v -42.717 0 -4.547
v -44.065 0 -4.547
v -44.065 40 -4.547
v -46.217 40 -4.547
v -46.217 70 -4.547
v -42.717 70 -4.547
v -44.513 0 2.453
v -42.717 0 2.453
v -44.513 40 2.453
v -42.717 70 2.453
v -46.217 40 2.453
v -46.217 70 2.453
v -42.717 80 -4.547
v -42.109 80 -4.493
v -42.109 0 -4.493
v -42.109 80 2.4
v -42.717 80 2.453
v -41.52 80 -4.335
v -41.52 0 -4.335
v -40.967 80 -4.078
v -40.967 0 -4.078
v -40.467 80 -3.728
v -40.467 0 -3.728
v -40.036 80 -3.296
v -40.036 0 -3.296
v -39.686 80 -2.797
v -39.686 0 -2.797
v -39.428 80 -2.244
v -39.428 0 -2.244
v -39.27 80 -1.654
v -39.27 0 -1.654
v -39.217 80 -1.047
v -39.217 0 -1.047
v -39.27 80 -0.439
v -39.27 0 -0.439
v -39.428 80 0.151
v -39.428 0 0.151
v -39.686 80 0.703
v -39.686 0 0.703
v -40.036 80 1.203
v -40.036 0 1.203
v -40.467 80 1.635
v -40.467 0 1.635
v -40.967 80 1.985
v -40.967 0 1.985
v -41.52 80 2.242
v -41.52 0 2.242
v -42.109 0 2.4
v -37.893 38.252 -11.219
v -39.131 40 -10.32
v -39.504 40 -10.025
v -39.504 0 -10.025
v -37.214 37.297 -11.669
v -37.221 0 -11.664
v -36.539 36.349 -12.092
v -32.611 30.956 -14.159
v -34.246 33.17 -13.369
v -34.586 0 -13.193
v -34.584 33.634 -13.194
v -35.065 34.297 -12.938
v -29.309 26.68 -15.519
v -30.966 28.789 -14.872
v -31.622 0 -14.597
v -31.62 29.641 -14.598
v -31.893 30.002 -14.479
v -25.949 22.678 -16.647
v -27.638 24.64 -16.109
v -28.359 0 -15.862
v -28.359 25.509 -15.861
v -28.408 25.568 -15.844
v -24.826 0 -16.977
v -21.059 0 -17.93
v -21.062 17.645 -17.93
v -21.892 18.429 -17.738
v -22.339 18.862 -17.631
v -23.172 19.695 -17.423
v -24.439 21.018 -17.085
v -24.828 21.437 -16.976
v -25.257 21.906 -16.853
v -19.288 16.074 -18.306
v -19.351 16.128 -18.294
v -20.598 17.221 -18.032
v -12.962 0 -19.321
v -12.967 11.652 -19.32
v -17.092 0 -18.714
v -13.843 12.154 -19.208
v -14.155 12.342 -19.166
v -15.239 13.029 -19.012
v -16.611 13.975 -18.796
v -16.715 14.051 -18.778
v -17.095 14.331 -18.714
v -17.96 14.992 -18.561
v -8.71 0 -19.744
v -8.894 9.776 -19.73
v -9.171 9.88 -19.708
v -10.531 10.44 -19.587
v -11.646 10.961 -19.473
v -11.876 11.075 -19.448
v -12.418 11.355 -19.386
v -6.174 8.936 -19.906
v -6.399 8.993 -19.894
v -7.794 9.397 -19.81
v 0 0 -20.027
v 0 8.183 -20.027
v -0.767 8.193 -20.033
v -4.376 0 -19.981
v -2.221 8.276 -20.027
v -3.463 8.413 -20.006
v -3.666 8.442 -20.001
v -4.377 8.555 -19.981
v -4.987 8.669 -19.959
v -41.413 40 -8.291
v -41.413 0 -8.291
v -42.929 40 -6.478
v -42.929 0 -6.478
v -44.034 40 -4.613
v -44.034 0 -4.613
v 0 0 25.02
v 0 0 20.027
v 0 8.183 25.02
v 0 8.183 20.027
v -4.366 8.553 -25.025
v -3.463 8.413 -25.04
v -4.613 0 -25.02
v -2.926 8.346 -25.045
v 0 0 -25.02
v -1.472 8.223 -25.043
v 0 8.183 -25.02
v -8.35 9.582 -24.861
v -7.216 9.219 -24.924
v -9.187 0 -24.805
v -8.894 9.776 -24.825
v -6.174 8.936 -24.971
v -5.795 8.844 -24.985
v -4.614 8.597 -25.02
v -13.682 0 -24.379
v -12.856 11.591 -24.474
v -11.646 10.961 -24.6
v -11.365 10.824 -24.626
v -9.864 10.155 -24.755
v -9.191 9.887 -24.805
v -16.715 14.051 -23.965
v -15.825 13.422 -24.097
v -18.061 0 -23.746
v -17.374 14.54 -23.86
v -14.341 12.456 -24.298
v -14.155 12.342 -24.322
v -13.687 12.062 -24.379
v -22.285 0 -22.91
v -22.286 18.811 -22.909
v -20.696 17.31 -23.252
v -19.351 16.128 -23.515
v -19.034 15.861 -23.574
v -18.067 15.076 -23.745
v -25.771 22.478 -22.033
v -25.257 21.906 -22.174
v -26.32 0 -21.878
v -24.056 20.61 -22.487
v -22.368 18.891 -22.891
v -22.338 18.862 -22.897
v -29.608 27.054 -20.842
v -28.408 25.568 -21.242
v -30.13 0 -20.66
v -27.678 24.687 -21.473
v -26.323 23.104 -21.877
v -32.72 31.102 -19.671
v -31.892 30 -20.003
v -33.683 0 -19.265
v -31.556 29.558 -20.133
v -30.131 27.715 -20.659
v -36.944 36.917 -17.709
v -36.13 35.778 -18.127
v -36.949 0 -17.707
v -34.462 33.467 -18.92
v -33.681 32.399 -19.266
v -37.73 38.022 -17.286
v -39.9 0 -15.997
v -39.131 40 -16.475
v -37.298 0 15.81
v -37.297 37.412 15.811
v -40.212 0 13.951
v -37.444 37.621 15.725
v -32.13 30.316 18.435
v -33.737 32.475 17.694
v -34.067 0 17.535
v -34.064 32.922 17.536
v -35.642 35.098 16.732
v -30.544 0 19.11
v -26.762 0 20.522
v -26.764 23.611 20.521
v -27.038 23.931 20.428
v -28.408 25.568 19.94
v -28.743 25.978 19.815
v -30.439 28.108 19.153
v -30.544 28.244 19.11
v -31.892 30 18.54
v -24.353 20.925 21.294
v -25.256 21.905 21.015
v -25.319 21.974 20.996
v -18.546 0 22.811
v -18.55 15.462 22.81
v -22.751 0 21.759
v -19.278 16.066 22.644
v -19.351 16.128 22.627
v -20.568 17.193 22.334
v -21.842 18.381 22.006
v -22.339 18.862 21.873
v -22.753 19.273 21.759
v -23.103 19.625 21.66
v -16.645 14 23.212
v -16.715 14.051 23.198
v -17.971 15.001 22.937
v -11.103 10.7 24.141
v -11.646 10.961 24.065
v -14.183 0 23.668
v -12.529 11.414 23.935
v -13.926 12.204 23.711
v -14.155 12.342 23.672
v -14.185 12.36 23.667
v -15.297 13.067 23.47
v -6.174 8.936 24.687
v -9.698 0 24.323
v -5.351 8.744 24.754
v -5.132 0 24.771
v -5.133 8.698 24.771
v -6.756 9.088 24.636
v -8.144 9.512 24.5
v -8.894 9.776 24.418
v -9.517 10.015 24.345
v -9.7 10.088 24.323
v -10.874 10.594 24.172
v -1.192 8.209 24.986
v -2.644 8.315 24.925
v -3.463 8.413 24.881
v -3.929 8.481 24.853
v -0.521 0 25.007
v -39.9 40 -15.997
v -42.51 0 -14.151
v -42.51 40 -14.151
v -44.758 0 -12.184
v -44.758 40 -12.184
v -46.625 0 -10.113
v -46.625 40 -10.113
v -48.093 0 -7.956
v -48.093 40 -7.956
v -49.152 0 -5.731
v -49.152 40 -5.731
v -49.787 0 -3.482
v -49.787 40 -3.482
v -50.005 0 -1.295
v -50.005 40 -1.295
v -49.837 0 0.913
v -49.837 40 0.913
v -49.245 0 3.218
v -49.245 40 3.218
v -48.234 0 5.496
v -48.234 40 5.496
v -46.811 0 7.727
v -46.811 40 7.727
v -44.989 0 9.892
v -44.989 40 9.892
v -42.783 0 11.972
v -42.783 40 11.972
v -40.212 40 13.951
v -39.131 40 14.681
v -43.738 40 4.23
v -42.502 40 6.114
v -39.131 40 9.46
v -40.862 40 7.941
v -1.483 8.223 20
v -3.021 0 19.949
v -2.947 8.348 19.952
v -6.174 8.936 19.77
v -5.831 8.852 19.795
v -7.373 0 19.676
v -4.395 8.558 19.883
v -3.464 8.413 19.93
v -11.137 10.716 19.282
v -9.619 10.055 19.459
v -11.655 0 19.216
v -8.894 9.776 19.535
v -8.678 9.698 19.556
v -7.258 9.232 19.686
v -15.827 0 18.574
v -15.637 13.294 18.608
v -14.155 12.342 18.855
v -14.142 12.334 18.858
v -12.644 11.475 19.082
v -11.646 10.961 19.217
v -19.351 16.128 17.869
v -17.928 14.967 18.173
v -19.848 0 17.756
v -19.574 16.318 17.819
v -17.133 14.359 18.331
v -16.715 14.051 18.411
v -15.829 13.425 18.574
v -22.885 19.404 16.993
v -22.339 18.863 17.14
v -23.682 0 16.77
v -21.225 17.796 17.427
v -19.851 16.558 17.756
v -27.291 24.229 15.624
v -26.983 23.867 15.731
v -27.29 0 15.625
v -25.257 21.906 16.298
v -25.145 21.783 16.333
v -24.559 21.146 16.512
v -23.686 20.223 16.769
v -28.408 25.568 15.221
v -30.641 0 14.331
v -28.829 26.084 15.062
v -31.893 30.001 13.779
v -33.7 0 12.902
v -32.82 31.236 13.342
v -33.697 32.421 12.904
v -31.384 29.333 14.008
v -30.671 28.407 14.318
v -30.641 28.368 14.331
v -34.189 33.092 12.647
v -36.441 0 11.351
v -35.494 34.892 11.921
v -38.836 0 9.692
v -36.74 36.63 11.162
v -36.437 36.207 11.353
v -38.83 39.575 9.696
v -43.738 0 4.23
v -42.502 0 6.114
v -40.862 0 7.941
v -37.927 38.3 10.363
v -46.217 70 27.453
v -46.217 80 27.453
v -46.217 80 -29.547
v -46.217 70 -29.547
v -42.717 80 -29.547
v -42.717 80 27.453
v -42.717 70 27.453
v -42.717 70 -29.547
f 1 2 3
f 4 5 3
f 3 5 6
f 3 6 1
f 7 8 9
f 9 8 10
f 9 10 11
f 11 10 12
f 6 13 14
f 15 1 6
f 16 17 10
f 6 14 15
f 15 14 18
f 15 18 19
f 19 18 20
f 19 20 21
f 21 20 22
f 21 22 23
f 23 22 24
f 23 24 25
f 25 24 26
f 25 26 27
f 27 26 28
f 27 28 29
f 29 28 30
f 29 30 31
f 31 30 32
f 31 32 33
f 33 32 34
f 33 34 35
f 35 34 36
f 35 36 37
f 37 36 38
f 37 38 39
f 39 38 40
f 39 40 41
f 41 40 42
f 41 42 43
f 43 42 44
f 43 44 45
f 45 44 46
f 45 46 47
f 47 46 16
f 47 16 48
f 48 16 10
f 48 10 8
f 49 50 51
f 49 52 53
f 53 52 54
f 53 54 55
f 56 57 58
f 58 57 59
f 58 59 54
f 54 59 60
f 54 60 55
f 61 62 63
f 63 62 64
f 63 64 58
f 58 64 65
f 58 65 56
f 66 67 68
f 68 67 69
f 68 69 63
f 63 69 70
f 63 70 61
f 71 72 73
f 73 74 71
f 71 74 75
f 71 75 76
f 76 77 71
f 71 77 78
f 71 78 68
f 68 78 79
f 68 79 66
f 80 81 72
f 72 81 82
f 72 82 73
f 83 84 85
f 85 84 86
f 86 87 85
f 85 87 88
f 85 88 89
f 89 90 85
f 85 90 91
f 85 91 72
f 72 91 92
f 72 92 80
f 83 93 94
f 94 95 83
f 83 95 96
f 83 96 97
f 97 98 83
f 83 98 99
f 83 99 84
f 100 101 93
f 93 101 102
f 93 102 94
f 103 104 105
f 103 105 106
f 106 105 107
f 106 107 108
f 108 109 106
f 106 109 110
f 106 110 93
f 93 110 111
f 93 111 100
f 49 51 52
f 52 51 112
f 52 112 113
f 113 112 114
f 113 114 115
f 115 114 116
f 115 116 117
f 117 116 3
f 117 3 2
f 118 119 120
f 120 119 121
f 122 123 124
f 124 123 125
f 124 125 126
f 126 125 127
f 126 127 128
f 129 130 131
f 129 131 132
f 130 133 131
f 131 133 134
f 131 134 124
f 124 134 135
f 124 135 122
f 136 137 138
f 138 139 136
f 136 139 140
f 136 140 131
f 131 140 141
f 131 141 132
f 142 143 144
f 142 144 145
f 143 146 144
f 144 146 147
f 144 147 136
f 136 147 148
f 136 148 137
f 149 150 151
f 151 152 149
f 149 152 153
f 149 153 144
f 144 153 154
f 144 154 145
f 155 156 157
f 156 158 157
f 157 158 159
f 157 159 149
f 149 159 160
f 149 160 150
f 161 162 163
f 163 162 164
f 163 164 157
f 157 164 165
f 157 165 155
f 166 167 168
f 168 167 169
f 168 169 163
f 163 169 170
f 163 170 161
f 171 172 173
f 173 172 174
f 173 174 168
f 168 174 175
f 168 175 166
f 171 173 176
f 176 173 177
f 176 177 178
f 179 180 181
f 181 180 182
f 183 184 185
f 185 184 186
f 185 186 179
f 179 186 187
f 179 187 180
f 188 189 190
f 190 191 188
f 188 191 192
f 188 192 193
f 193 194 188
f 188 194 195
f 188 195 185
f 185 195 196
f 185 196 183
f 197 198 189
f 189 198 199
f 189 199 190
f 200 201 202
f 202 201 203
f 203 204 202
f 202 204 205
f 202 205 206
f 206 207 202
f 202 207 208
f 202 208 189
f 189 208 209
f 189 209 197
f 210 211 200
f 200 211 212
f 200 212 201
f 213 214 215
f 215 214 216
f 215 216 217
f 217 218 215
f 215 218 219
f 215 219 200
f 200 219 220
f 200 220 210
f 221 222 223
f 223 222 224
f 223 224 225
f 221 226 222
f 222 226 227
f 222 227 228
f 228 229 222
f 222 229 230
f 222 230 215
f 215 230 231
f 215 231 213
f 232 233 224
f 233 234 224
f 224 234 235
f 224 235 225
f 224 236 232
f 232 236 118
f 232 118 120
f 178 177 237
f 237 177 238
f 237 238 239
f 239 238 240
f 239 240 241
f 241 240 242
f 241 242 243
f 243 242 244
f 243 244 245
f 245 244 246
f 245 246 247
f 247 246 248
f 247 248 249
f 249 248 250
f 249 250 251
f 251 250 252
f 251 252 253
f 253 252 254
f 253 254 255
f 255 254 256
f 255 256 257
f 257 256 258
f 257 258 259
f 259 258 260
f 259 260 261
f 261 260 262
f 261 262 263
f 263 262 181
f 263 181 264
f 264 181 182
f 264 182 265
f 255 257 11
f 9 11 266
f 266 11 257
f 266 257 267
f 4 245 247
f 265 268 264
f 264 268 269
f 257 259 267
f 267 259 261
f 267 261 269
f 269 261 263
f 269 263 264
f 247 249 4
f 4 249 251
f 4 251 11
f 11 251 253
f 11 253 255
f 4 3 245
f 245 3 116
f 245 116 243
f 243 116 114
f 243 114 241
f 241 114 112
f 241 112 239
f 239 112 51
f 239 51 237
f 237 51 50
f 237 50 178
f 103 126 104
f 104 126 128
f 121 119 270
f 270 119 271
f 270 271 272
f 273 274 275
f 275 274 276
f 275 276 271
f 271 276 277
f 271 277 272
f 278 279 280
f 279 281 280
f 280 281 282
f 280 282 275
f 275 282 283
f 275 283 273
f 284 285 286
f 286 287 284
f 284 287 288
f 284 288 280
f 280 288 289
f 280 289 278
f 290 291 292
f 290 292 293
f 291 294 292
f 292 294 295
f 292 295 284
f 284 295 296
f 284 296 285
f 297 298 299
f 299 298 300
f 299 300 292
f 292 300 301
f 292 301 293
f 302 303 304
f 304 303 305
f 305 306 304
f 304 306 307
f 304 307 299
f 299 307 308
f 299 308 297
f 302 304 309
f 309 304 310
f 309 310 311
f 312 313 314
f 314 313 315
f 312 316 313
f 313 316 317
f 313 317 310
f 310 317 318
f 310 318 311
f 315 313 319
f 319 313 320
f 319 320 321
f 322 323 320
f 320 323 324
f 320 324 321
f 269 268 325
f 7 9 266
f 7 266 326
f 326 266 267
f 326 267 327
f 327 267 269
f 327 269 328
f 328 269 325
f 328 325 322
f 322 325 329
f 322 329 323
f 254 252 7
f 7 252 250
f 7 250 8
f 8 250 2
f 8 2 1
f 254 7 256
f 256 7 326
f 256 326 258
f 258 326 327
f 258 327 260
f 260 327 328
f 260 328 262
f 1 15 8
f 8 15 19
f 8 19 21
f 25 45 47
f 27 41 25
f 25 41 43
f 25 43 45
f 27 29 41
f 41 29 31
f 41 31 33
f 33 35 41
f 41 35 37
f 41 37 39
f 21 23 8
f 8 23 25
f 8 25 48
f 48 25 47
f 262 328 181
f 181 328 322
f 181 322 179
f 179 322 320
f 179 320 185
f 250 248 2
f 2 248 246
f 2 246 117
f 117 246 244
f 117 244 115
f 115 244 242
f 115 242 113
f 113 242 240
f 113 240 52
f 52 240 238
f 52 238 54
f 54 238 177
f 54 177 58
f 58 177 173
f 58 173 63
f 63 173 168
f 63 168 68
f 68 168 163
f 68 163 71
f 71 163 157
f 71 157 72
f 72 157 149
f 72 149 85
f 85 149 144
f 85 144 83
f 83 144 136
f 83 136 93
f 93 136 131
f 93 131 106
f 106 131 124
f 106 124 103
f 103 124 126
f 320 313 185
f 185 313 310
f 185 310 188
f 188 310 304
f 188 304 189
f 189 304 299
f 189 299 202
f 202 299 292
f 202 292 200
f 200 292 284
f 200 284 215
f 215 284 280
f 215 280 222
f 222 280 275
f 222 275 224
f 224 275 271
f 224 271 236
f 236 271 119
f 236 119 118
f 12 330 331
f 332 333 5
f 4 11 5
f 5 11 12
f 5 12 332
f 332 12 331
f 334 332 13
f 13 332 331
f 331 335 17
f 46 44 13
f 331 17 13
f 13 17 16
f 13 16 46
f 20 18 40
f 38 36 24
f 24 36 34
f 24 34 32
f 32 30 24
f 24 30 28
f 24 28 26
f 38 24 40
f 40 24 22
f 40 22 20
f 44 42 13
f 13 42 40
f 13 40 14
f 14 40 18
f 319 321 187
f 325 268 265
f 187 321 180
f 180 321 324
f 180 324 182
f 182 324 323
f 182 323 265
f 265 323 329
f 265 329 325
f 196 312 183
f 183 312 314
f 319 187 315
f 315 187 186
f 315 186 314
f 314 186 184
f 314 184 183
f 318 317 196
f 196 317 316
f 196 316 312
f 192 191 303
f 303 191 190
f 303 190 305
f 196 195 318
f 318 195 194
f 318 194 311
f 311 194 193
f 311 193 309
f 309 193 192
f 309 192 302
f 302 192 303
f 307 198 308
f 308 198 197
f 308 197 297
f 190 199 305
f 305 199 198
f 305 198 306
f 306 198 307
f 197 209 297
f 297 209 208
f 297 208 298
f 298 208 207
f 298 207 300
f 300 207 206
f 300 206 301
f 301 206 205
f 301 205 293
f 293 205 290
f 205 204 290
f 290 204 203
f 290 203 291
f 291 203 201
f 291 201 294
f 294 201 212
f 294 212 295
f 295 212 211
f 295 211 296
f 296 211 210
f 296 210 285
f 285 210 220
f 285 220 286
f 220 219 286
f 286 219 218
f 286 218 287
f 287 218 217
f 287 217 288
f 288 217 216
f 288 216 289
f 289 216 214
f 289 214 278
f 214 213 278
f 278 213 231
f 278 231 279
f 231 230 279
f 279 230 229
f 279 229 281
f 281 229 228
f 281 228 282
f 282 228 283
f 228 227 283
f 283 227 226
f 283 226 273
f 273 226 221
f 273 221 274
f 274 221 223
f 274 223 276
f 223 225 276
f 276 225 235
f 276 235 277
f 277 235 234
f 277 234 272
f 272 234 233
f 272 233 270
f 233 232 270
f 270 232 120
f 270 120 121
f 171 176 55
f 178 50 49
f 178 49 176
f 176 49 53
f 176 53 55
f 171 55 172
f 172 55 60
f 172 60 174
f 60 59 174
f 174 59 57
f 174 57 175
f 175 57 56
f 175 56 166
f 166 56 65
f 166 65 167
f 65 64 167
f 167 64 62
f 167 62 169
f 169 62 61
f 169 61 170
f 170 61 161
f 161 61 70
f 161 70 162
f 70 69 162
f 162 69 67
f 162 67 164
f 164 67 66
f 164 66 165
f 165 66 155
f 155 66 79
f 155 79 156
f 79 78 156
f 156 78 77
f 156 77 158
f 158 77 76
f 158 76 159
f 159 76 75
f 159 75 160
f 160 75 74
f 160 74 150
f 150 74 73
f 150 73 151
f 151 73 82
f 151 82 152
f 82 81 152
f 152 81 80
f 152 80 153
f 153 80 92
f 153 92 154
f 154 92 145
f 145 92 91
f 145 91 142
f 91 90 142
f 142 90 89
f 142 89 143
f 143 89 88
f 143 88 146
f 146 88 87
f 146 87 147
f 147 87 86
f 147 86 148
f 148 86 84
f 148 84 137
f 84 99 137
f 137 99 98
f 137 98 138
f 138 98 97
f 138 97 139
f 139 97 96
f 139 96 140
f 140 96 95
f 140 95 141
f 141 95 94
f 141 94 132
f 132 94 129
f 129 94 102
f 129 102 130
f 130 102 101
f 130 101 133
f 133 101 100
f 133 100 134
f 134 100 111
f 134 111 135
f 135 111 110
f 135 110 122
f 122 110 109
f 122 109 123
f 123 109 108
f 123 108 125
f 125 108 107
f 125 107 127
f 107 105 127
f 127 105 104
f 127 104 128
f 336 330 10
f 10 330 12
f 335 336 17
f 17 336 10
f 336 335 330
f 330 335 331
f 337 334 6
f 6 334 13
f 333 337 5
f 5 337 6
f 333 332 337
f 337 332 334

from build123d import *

# Parameters (mm, degrees)
SKETCH1_RX          = 50.023380752
SKETCH1_RY          = 25.011690376
BOSS_EXTRUDE1_DEPTH = 40
SKETCH2_W           = 53.048194423
SKETCH2_H           = 52.128277272
CUT_EXTRUDE1_DEPTH  = 40
SKETCH3_RX          = 45.004218106
SKETCH3_RY          = 20.025989305
CUT_EXTRUDE3_DEPTH  = 40
HANDLE_DEPTH        = 40
HANDLE_DEPTH_BACK   = 40
SKETCH4_W           = 7
SKETCH4_H           = 7
CUT_EXTRUDE4_START  = -27.500221438
CUT_EXTRUDE4_DEPTH  = 50.067195632
FILLET1_RADIUS      = 3.5
FILLET1_LENGTH      = 80
SKETCH6_W           = 3.5
SKETCH6_H           = 10
BOSS_EXTRUDE2_DEPTH = 25
SKETCH9_W           = 3.5
SKETCH9_H           = 10
BOSS_EXTRUDE3_DEPTH = 25


# Read off the part's stored shape, not the designer's step: Cut-Extrude4
with BuildPart() as part:
    # Sketch1 → Boss-Extrude1 (new body)
    with BuildSketch(Plane(origin=(0, 0, 0), x_dir=(1, 0, 0), z_dir=(0, 1, 0))):
        with Locations(Location((0, 0), (0, 0, -1.751851392))):
            Ellipse(SKETCH1_RX, SKETCH1_RY)
    extrude(amount=BOSS_EXTRUDE1_DEPTH)

    # Sketch2 → Cut-Extrude1 (cut)
    with BuildSketch(Plane(origin=(0, 40, 0), x_dir=(1, 0, 0), z_dir=(0, 1, 0))):
        with Locations((26.524365297, -1.043684065)):
            Rectangle(SKETCH2_W, SKETCH2_H)
    extrude(amount=-CUT_EXTRUDE1_DEPTH, mode=Mode.SUBTRACT)

    # Sketch3 → Cut-Extrude3 (cut)
    with BuildSketch(Plane(origin=(0, 40, 0), x_dir=(1, 0, 0), z_dir=(0, 1, 0))):
        with Locations(Location((0, 0), (0, 0, -0.784464251))):
            Ellipse(SKETCH3_RX, SKETCH3_RY)
    extrude(amount=-CUT_EXTRUDE3_DEPTH, mode=Mode.SUBTRACT)

    # Sketch4 → handle (add, two sides: drawn at the far end of the back side and taken through both)
    with BuildSketch(Plane(origin=(1.890919535, 40, 0), x_dir=(1, 0, 0), z_dir=(0, 1, 0)).offset(-HANDLE_DEPTH_BACK)):
        with Locations((-44.607863545, 1.046507327)):
            Rectangle(SKETCH4_W, SKETCH4_H)
    extrude(amount=HANDLE_DEPTH + HANDLE_DEPTH_BACK)

    # Cut-Extrude4 outline → Cut-Extrude4 (cut)
    with BuildSketch(Plane(origin=(1.890919535, 0, 2.453492673), x_dir=(1, 0, 0), z_dir=(0, 0, 1)).offset(CUT_EXTRUDE4_START)):
        with BuildLine():
            Line((-1.89065145, 40), (-41.022009989, 40))
            add(Edge.make_bspline(
                [(-41.022009989, 40), (-29.747385861, 24.075030507), (-18.472761733, 8.150061014), (-1.89065145, 8.183439673)],
                knots=[0, 0, 0, 0, 0.942635283, 0.942635283, 0.942635283, 0.942635283], degree=3))
            Line((-1.89065145, 8.183439673), (-1.89065145, 40))
        make_face()
    extrude(amount=CUT_EXTRUDE4_DEPTH, mode=Mode.SUBTRACT)

    # Fillet1: full round fillet: the end face becomes a half cylinder, R = half its width
    fillet1_face = Plane((-39.21694401, 40, -1.046507327), x_dir=(0, 1, 0), z_dir=(1, 0, 0))  # on the end face: x along it, z out of the body
    fillet1_slab = fillet1_face.offset(-FILLET1_RADIUS / 2) * Box(FILLET1_LENGTH, 2 * FILLET1_RADIUS, FILLET1_RADIUS, mode=Mode.PRIVATE)  # the body's end, R deep
    fillet1_round = Plane((-42.71694401, 40, -1.046507327), x_dir=(1, 0, 0), z_dir=(0, 1, 0)) * Cylinder(FILLET1_RADIUS, FILLET1_LENGTH, mode=Mode.PRIVATE)  # its axis R under the face
    add(fillet1_slab - fillet1_round, mode=Mode.SUBTRACT)

    # Sketch6 → Boss-Extrude2 (add)
    with BuildSketch(Plane.XY.offset(2.453492673)):
        with Locations((-44.46694401, 75)):
            Rectangle(SKETCH6_W, SKETCH6_H)
    extrude(amount=BOSS_EXTRUDE2_DEPTH)

    # Sketch9 → Boss-Extrude3 (add)
    with BuildSketch(Plane(origin=(0, 0, -4.546507327), x_dir=(-1, 0, 0), z_dir=(0, 0, -1))):
        with Locations((44.46694401, 75)):
            Rectangle(SKETCH9_W, SKETCH9_H)
    extrude(amount=BOSS_EXTRUDE3_DEPTH)


solid = part.part
